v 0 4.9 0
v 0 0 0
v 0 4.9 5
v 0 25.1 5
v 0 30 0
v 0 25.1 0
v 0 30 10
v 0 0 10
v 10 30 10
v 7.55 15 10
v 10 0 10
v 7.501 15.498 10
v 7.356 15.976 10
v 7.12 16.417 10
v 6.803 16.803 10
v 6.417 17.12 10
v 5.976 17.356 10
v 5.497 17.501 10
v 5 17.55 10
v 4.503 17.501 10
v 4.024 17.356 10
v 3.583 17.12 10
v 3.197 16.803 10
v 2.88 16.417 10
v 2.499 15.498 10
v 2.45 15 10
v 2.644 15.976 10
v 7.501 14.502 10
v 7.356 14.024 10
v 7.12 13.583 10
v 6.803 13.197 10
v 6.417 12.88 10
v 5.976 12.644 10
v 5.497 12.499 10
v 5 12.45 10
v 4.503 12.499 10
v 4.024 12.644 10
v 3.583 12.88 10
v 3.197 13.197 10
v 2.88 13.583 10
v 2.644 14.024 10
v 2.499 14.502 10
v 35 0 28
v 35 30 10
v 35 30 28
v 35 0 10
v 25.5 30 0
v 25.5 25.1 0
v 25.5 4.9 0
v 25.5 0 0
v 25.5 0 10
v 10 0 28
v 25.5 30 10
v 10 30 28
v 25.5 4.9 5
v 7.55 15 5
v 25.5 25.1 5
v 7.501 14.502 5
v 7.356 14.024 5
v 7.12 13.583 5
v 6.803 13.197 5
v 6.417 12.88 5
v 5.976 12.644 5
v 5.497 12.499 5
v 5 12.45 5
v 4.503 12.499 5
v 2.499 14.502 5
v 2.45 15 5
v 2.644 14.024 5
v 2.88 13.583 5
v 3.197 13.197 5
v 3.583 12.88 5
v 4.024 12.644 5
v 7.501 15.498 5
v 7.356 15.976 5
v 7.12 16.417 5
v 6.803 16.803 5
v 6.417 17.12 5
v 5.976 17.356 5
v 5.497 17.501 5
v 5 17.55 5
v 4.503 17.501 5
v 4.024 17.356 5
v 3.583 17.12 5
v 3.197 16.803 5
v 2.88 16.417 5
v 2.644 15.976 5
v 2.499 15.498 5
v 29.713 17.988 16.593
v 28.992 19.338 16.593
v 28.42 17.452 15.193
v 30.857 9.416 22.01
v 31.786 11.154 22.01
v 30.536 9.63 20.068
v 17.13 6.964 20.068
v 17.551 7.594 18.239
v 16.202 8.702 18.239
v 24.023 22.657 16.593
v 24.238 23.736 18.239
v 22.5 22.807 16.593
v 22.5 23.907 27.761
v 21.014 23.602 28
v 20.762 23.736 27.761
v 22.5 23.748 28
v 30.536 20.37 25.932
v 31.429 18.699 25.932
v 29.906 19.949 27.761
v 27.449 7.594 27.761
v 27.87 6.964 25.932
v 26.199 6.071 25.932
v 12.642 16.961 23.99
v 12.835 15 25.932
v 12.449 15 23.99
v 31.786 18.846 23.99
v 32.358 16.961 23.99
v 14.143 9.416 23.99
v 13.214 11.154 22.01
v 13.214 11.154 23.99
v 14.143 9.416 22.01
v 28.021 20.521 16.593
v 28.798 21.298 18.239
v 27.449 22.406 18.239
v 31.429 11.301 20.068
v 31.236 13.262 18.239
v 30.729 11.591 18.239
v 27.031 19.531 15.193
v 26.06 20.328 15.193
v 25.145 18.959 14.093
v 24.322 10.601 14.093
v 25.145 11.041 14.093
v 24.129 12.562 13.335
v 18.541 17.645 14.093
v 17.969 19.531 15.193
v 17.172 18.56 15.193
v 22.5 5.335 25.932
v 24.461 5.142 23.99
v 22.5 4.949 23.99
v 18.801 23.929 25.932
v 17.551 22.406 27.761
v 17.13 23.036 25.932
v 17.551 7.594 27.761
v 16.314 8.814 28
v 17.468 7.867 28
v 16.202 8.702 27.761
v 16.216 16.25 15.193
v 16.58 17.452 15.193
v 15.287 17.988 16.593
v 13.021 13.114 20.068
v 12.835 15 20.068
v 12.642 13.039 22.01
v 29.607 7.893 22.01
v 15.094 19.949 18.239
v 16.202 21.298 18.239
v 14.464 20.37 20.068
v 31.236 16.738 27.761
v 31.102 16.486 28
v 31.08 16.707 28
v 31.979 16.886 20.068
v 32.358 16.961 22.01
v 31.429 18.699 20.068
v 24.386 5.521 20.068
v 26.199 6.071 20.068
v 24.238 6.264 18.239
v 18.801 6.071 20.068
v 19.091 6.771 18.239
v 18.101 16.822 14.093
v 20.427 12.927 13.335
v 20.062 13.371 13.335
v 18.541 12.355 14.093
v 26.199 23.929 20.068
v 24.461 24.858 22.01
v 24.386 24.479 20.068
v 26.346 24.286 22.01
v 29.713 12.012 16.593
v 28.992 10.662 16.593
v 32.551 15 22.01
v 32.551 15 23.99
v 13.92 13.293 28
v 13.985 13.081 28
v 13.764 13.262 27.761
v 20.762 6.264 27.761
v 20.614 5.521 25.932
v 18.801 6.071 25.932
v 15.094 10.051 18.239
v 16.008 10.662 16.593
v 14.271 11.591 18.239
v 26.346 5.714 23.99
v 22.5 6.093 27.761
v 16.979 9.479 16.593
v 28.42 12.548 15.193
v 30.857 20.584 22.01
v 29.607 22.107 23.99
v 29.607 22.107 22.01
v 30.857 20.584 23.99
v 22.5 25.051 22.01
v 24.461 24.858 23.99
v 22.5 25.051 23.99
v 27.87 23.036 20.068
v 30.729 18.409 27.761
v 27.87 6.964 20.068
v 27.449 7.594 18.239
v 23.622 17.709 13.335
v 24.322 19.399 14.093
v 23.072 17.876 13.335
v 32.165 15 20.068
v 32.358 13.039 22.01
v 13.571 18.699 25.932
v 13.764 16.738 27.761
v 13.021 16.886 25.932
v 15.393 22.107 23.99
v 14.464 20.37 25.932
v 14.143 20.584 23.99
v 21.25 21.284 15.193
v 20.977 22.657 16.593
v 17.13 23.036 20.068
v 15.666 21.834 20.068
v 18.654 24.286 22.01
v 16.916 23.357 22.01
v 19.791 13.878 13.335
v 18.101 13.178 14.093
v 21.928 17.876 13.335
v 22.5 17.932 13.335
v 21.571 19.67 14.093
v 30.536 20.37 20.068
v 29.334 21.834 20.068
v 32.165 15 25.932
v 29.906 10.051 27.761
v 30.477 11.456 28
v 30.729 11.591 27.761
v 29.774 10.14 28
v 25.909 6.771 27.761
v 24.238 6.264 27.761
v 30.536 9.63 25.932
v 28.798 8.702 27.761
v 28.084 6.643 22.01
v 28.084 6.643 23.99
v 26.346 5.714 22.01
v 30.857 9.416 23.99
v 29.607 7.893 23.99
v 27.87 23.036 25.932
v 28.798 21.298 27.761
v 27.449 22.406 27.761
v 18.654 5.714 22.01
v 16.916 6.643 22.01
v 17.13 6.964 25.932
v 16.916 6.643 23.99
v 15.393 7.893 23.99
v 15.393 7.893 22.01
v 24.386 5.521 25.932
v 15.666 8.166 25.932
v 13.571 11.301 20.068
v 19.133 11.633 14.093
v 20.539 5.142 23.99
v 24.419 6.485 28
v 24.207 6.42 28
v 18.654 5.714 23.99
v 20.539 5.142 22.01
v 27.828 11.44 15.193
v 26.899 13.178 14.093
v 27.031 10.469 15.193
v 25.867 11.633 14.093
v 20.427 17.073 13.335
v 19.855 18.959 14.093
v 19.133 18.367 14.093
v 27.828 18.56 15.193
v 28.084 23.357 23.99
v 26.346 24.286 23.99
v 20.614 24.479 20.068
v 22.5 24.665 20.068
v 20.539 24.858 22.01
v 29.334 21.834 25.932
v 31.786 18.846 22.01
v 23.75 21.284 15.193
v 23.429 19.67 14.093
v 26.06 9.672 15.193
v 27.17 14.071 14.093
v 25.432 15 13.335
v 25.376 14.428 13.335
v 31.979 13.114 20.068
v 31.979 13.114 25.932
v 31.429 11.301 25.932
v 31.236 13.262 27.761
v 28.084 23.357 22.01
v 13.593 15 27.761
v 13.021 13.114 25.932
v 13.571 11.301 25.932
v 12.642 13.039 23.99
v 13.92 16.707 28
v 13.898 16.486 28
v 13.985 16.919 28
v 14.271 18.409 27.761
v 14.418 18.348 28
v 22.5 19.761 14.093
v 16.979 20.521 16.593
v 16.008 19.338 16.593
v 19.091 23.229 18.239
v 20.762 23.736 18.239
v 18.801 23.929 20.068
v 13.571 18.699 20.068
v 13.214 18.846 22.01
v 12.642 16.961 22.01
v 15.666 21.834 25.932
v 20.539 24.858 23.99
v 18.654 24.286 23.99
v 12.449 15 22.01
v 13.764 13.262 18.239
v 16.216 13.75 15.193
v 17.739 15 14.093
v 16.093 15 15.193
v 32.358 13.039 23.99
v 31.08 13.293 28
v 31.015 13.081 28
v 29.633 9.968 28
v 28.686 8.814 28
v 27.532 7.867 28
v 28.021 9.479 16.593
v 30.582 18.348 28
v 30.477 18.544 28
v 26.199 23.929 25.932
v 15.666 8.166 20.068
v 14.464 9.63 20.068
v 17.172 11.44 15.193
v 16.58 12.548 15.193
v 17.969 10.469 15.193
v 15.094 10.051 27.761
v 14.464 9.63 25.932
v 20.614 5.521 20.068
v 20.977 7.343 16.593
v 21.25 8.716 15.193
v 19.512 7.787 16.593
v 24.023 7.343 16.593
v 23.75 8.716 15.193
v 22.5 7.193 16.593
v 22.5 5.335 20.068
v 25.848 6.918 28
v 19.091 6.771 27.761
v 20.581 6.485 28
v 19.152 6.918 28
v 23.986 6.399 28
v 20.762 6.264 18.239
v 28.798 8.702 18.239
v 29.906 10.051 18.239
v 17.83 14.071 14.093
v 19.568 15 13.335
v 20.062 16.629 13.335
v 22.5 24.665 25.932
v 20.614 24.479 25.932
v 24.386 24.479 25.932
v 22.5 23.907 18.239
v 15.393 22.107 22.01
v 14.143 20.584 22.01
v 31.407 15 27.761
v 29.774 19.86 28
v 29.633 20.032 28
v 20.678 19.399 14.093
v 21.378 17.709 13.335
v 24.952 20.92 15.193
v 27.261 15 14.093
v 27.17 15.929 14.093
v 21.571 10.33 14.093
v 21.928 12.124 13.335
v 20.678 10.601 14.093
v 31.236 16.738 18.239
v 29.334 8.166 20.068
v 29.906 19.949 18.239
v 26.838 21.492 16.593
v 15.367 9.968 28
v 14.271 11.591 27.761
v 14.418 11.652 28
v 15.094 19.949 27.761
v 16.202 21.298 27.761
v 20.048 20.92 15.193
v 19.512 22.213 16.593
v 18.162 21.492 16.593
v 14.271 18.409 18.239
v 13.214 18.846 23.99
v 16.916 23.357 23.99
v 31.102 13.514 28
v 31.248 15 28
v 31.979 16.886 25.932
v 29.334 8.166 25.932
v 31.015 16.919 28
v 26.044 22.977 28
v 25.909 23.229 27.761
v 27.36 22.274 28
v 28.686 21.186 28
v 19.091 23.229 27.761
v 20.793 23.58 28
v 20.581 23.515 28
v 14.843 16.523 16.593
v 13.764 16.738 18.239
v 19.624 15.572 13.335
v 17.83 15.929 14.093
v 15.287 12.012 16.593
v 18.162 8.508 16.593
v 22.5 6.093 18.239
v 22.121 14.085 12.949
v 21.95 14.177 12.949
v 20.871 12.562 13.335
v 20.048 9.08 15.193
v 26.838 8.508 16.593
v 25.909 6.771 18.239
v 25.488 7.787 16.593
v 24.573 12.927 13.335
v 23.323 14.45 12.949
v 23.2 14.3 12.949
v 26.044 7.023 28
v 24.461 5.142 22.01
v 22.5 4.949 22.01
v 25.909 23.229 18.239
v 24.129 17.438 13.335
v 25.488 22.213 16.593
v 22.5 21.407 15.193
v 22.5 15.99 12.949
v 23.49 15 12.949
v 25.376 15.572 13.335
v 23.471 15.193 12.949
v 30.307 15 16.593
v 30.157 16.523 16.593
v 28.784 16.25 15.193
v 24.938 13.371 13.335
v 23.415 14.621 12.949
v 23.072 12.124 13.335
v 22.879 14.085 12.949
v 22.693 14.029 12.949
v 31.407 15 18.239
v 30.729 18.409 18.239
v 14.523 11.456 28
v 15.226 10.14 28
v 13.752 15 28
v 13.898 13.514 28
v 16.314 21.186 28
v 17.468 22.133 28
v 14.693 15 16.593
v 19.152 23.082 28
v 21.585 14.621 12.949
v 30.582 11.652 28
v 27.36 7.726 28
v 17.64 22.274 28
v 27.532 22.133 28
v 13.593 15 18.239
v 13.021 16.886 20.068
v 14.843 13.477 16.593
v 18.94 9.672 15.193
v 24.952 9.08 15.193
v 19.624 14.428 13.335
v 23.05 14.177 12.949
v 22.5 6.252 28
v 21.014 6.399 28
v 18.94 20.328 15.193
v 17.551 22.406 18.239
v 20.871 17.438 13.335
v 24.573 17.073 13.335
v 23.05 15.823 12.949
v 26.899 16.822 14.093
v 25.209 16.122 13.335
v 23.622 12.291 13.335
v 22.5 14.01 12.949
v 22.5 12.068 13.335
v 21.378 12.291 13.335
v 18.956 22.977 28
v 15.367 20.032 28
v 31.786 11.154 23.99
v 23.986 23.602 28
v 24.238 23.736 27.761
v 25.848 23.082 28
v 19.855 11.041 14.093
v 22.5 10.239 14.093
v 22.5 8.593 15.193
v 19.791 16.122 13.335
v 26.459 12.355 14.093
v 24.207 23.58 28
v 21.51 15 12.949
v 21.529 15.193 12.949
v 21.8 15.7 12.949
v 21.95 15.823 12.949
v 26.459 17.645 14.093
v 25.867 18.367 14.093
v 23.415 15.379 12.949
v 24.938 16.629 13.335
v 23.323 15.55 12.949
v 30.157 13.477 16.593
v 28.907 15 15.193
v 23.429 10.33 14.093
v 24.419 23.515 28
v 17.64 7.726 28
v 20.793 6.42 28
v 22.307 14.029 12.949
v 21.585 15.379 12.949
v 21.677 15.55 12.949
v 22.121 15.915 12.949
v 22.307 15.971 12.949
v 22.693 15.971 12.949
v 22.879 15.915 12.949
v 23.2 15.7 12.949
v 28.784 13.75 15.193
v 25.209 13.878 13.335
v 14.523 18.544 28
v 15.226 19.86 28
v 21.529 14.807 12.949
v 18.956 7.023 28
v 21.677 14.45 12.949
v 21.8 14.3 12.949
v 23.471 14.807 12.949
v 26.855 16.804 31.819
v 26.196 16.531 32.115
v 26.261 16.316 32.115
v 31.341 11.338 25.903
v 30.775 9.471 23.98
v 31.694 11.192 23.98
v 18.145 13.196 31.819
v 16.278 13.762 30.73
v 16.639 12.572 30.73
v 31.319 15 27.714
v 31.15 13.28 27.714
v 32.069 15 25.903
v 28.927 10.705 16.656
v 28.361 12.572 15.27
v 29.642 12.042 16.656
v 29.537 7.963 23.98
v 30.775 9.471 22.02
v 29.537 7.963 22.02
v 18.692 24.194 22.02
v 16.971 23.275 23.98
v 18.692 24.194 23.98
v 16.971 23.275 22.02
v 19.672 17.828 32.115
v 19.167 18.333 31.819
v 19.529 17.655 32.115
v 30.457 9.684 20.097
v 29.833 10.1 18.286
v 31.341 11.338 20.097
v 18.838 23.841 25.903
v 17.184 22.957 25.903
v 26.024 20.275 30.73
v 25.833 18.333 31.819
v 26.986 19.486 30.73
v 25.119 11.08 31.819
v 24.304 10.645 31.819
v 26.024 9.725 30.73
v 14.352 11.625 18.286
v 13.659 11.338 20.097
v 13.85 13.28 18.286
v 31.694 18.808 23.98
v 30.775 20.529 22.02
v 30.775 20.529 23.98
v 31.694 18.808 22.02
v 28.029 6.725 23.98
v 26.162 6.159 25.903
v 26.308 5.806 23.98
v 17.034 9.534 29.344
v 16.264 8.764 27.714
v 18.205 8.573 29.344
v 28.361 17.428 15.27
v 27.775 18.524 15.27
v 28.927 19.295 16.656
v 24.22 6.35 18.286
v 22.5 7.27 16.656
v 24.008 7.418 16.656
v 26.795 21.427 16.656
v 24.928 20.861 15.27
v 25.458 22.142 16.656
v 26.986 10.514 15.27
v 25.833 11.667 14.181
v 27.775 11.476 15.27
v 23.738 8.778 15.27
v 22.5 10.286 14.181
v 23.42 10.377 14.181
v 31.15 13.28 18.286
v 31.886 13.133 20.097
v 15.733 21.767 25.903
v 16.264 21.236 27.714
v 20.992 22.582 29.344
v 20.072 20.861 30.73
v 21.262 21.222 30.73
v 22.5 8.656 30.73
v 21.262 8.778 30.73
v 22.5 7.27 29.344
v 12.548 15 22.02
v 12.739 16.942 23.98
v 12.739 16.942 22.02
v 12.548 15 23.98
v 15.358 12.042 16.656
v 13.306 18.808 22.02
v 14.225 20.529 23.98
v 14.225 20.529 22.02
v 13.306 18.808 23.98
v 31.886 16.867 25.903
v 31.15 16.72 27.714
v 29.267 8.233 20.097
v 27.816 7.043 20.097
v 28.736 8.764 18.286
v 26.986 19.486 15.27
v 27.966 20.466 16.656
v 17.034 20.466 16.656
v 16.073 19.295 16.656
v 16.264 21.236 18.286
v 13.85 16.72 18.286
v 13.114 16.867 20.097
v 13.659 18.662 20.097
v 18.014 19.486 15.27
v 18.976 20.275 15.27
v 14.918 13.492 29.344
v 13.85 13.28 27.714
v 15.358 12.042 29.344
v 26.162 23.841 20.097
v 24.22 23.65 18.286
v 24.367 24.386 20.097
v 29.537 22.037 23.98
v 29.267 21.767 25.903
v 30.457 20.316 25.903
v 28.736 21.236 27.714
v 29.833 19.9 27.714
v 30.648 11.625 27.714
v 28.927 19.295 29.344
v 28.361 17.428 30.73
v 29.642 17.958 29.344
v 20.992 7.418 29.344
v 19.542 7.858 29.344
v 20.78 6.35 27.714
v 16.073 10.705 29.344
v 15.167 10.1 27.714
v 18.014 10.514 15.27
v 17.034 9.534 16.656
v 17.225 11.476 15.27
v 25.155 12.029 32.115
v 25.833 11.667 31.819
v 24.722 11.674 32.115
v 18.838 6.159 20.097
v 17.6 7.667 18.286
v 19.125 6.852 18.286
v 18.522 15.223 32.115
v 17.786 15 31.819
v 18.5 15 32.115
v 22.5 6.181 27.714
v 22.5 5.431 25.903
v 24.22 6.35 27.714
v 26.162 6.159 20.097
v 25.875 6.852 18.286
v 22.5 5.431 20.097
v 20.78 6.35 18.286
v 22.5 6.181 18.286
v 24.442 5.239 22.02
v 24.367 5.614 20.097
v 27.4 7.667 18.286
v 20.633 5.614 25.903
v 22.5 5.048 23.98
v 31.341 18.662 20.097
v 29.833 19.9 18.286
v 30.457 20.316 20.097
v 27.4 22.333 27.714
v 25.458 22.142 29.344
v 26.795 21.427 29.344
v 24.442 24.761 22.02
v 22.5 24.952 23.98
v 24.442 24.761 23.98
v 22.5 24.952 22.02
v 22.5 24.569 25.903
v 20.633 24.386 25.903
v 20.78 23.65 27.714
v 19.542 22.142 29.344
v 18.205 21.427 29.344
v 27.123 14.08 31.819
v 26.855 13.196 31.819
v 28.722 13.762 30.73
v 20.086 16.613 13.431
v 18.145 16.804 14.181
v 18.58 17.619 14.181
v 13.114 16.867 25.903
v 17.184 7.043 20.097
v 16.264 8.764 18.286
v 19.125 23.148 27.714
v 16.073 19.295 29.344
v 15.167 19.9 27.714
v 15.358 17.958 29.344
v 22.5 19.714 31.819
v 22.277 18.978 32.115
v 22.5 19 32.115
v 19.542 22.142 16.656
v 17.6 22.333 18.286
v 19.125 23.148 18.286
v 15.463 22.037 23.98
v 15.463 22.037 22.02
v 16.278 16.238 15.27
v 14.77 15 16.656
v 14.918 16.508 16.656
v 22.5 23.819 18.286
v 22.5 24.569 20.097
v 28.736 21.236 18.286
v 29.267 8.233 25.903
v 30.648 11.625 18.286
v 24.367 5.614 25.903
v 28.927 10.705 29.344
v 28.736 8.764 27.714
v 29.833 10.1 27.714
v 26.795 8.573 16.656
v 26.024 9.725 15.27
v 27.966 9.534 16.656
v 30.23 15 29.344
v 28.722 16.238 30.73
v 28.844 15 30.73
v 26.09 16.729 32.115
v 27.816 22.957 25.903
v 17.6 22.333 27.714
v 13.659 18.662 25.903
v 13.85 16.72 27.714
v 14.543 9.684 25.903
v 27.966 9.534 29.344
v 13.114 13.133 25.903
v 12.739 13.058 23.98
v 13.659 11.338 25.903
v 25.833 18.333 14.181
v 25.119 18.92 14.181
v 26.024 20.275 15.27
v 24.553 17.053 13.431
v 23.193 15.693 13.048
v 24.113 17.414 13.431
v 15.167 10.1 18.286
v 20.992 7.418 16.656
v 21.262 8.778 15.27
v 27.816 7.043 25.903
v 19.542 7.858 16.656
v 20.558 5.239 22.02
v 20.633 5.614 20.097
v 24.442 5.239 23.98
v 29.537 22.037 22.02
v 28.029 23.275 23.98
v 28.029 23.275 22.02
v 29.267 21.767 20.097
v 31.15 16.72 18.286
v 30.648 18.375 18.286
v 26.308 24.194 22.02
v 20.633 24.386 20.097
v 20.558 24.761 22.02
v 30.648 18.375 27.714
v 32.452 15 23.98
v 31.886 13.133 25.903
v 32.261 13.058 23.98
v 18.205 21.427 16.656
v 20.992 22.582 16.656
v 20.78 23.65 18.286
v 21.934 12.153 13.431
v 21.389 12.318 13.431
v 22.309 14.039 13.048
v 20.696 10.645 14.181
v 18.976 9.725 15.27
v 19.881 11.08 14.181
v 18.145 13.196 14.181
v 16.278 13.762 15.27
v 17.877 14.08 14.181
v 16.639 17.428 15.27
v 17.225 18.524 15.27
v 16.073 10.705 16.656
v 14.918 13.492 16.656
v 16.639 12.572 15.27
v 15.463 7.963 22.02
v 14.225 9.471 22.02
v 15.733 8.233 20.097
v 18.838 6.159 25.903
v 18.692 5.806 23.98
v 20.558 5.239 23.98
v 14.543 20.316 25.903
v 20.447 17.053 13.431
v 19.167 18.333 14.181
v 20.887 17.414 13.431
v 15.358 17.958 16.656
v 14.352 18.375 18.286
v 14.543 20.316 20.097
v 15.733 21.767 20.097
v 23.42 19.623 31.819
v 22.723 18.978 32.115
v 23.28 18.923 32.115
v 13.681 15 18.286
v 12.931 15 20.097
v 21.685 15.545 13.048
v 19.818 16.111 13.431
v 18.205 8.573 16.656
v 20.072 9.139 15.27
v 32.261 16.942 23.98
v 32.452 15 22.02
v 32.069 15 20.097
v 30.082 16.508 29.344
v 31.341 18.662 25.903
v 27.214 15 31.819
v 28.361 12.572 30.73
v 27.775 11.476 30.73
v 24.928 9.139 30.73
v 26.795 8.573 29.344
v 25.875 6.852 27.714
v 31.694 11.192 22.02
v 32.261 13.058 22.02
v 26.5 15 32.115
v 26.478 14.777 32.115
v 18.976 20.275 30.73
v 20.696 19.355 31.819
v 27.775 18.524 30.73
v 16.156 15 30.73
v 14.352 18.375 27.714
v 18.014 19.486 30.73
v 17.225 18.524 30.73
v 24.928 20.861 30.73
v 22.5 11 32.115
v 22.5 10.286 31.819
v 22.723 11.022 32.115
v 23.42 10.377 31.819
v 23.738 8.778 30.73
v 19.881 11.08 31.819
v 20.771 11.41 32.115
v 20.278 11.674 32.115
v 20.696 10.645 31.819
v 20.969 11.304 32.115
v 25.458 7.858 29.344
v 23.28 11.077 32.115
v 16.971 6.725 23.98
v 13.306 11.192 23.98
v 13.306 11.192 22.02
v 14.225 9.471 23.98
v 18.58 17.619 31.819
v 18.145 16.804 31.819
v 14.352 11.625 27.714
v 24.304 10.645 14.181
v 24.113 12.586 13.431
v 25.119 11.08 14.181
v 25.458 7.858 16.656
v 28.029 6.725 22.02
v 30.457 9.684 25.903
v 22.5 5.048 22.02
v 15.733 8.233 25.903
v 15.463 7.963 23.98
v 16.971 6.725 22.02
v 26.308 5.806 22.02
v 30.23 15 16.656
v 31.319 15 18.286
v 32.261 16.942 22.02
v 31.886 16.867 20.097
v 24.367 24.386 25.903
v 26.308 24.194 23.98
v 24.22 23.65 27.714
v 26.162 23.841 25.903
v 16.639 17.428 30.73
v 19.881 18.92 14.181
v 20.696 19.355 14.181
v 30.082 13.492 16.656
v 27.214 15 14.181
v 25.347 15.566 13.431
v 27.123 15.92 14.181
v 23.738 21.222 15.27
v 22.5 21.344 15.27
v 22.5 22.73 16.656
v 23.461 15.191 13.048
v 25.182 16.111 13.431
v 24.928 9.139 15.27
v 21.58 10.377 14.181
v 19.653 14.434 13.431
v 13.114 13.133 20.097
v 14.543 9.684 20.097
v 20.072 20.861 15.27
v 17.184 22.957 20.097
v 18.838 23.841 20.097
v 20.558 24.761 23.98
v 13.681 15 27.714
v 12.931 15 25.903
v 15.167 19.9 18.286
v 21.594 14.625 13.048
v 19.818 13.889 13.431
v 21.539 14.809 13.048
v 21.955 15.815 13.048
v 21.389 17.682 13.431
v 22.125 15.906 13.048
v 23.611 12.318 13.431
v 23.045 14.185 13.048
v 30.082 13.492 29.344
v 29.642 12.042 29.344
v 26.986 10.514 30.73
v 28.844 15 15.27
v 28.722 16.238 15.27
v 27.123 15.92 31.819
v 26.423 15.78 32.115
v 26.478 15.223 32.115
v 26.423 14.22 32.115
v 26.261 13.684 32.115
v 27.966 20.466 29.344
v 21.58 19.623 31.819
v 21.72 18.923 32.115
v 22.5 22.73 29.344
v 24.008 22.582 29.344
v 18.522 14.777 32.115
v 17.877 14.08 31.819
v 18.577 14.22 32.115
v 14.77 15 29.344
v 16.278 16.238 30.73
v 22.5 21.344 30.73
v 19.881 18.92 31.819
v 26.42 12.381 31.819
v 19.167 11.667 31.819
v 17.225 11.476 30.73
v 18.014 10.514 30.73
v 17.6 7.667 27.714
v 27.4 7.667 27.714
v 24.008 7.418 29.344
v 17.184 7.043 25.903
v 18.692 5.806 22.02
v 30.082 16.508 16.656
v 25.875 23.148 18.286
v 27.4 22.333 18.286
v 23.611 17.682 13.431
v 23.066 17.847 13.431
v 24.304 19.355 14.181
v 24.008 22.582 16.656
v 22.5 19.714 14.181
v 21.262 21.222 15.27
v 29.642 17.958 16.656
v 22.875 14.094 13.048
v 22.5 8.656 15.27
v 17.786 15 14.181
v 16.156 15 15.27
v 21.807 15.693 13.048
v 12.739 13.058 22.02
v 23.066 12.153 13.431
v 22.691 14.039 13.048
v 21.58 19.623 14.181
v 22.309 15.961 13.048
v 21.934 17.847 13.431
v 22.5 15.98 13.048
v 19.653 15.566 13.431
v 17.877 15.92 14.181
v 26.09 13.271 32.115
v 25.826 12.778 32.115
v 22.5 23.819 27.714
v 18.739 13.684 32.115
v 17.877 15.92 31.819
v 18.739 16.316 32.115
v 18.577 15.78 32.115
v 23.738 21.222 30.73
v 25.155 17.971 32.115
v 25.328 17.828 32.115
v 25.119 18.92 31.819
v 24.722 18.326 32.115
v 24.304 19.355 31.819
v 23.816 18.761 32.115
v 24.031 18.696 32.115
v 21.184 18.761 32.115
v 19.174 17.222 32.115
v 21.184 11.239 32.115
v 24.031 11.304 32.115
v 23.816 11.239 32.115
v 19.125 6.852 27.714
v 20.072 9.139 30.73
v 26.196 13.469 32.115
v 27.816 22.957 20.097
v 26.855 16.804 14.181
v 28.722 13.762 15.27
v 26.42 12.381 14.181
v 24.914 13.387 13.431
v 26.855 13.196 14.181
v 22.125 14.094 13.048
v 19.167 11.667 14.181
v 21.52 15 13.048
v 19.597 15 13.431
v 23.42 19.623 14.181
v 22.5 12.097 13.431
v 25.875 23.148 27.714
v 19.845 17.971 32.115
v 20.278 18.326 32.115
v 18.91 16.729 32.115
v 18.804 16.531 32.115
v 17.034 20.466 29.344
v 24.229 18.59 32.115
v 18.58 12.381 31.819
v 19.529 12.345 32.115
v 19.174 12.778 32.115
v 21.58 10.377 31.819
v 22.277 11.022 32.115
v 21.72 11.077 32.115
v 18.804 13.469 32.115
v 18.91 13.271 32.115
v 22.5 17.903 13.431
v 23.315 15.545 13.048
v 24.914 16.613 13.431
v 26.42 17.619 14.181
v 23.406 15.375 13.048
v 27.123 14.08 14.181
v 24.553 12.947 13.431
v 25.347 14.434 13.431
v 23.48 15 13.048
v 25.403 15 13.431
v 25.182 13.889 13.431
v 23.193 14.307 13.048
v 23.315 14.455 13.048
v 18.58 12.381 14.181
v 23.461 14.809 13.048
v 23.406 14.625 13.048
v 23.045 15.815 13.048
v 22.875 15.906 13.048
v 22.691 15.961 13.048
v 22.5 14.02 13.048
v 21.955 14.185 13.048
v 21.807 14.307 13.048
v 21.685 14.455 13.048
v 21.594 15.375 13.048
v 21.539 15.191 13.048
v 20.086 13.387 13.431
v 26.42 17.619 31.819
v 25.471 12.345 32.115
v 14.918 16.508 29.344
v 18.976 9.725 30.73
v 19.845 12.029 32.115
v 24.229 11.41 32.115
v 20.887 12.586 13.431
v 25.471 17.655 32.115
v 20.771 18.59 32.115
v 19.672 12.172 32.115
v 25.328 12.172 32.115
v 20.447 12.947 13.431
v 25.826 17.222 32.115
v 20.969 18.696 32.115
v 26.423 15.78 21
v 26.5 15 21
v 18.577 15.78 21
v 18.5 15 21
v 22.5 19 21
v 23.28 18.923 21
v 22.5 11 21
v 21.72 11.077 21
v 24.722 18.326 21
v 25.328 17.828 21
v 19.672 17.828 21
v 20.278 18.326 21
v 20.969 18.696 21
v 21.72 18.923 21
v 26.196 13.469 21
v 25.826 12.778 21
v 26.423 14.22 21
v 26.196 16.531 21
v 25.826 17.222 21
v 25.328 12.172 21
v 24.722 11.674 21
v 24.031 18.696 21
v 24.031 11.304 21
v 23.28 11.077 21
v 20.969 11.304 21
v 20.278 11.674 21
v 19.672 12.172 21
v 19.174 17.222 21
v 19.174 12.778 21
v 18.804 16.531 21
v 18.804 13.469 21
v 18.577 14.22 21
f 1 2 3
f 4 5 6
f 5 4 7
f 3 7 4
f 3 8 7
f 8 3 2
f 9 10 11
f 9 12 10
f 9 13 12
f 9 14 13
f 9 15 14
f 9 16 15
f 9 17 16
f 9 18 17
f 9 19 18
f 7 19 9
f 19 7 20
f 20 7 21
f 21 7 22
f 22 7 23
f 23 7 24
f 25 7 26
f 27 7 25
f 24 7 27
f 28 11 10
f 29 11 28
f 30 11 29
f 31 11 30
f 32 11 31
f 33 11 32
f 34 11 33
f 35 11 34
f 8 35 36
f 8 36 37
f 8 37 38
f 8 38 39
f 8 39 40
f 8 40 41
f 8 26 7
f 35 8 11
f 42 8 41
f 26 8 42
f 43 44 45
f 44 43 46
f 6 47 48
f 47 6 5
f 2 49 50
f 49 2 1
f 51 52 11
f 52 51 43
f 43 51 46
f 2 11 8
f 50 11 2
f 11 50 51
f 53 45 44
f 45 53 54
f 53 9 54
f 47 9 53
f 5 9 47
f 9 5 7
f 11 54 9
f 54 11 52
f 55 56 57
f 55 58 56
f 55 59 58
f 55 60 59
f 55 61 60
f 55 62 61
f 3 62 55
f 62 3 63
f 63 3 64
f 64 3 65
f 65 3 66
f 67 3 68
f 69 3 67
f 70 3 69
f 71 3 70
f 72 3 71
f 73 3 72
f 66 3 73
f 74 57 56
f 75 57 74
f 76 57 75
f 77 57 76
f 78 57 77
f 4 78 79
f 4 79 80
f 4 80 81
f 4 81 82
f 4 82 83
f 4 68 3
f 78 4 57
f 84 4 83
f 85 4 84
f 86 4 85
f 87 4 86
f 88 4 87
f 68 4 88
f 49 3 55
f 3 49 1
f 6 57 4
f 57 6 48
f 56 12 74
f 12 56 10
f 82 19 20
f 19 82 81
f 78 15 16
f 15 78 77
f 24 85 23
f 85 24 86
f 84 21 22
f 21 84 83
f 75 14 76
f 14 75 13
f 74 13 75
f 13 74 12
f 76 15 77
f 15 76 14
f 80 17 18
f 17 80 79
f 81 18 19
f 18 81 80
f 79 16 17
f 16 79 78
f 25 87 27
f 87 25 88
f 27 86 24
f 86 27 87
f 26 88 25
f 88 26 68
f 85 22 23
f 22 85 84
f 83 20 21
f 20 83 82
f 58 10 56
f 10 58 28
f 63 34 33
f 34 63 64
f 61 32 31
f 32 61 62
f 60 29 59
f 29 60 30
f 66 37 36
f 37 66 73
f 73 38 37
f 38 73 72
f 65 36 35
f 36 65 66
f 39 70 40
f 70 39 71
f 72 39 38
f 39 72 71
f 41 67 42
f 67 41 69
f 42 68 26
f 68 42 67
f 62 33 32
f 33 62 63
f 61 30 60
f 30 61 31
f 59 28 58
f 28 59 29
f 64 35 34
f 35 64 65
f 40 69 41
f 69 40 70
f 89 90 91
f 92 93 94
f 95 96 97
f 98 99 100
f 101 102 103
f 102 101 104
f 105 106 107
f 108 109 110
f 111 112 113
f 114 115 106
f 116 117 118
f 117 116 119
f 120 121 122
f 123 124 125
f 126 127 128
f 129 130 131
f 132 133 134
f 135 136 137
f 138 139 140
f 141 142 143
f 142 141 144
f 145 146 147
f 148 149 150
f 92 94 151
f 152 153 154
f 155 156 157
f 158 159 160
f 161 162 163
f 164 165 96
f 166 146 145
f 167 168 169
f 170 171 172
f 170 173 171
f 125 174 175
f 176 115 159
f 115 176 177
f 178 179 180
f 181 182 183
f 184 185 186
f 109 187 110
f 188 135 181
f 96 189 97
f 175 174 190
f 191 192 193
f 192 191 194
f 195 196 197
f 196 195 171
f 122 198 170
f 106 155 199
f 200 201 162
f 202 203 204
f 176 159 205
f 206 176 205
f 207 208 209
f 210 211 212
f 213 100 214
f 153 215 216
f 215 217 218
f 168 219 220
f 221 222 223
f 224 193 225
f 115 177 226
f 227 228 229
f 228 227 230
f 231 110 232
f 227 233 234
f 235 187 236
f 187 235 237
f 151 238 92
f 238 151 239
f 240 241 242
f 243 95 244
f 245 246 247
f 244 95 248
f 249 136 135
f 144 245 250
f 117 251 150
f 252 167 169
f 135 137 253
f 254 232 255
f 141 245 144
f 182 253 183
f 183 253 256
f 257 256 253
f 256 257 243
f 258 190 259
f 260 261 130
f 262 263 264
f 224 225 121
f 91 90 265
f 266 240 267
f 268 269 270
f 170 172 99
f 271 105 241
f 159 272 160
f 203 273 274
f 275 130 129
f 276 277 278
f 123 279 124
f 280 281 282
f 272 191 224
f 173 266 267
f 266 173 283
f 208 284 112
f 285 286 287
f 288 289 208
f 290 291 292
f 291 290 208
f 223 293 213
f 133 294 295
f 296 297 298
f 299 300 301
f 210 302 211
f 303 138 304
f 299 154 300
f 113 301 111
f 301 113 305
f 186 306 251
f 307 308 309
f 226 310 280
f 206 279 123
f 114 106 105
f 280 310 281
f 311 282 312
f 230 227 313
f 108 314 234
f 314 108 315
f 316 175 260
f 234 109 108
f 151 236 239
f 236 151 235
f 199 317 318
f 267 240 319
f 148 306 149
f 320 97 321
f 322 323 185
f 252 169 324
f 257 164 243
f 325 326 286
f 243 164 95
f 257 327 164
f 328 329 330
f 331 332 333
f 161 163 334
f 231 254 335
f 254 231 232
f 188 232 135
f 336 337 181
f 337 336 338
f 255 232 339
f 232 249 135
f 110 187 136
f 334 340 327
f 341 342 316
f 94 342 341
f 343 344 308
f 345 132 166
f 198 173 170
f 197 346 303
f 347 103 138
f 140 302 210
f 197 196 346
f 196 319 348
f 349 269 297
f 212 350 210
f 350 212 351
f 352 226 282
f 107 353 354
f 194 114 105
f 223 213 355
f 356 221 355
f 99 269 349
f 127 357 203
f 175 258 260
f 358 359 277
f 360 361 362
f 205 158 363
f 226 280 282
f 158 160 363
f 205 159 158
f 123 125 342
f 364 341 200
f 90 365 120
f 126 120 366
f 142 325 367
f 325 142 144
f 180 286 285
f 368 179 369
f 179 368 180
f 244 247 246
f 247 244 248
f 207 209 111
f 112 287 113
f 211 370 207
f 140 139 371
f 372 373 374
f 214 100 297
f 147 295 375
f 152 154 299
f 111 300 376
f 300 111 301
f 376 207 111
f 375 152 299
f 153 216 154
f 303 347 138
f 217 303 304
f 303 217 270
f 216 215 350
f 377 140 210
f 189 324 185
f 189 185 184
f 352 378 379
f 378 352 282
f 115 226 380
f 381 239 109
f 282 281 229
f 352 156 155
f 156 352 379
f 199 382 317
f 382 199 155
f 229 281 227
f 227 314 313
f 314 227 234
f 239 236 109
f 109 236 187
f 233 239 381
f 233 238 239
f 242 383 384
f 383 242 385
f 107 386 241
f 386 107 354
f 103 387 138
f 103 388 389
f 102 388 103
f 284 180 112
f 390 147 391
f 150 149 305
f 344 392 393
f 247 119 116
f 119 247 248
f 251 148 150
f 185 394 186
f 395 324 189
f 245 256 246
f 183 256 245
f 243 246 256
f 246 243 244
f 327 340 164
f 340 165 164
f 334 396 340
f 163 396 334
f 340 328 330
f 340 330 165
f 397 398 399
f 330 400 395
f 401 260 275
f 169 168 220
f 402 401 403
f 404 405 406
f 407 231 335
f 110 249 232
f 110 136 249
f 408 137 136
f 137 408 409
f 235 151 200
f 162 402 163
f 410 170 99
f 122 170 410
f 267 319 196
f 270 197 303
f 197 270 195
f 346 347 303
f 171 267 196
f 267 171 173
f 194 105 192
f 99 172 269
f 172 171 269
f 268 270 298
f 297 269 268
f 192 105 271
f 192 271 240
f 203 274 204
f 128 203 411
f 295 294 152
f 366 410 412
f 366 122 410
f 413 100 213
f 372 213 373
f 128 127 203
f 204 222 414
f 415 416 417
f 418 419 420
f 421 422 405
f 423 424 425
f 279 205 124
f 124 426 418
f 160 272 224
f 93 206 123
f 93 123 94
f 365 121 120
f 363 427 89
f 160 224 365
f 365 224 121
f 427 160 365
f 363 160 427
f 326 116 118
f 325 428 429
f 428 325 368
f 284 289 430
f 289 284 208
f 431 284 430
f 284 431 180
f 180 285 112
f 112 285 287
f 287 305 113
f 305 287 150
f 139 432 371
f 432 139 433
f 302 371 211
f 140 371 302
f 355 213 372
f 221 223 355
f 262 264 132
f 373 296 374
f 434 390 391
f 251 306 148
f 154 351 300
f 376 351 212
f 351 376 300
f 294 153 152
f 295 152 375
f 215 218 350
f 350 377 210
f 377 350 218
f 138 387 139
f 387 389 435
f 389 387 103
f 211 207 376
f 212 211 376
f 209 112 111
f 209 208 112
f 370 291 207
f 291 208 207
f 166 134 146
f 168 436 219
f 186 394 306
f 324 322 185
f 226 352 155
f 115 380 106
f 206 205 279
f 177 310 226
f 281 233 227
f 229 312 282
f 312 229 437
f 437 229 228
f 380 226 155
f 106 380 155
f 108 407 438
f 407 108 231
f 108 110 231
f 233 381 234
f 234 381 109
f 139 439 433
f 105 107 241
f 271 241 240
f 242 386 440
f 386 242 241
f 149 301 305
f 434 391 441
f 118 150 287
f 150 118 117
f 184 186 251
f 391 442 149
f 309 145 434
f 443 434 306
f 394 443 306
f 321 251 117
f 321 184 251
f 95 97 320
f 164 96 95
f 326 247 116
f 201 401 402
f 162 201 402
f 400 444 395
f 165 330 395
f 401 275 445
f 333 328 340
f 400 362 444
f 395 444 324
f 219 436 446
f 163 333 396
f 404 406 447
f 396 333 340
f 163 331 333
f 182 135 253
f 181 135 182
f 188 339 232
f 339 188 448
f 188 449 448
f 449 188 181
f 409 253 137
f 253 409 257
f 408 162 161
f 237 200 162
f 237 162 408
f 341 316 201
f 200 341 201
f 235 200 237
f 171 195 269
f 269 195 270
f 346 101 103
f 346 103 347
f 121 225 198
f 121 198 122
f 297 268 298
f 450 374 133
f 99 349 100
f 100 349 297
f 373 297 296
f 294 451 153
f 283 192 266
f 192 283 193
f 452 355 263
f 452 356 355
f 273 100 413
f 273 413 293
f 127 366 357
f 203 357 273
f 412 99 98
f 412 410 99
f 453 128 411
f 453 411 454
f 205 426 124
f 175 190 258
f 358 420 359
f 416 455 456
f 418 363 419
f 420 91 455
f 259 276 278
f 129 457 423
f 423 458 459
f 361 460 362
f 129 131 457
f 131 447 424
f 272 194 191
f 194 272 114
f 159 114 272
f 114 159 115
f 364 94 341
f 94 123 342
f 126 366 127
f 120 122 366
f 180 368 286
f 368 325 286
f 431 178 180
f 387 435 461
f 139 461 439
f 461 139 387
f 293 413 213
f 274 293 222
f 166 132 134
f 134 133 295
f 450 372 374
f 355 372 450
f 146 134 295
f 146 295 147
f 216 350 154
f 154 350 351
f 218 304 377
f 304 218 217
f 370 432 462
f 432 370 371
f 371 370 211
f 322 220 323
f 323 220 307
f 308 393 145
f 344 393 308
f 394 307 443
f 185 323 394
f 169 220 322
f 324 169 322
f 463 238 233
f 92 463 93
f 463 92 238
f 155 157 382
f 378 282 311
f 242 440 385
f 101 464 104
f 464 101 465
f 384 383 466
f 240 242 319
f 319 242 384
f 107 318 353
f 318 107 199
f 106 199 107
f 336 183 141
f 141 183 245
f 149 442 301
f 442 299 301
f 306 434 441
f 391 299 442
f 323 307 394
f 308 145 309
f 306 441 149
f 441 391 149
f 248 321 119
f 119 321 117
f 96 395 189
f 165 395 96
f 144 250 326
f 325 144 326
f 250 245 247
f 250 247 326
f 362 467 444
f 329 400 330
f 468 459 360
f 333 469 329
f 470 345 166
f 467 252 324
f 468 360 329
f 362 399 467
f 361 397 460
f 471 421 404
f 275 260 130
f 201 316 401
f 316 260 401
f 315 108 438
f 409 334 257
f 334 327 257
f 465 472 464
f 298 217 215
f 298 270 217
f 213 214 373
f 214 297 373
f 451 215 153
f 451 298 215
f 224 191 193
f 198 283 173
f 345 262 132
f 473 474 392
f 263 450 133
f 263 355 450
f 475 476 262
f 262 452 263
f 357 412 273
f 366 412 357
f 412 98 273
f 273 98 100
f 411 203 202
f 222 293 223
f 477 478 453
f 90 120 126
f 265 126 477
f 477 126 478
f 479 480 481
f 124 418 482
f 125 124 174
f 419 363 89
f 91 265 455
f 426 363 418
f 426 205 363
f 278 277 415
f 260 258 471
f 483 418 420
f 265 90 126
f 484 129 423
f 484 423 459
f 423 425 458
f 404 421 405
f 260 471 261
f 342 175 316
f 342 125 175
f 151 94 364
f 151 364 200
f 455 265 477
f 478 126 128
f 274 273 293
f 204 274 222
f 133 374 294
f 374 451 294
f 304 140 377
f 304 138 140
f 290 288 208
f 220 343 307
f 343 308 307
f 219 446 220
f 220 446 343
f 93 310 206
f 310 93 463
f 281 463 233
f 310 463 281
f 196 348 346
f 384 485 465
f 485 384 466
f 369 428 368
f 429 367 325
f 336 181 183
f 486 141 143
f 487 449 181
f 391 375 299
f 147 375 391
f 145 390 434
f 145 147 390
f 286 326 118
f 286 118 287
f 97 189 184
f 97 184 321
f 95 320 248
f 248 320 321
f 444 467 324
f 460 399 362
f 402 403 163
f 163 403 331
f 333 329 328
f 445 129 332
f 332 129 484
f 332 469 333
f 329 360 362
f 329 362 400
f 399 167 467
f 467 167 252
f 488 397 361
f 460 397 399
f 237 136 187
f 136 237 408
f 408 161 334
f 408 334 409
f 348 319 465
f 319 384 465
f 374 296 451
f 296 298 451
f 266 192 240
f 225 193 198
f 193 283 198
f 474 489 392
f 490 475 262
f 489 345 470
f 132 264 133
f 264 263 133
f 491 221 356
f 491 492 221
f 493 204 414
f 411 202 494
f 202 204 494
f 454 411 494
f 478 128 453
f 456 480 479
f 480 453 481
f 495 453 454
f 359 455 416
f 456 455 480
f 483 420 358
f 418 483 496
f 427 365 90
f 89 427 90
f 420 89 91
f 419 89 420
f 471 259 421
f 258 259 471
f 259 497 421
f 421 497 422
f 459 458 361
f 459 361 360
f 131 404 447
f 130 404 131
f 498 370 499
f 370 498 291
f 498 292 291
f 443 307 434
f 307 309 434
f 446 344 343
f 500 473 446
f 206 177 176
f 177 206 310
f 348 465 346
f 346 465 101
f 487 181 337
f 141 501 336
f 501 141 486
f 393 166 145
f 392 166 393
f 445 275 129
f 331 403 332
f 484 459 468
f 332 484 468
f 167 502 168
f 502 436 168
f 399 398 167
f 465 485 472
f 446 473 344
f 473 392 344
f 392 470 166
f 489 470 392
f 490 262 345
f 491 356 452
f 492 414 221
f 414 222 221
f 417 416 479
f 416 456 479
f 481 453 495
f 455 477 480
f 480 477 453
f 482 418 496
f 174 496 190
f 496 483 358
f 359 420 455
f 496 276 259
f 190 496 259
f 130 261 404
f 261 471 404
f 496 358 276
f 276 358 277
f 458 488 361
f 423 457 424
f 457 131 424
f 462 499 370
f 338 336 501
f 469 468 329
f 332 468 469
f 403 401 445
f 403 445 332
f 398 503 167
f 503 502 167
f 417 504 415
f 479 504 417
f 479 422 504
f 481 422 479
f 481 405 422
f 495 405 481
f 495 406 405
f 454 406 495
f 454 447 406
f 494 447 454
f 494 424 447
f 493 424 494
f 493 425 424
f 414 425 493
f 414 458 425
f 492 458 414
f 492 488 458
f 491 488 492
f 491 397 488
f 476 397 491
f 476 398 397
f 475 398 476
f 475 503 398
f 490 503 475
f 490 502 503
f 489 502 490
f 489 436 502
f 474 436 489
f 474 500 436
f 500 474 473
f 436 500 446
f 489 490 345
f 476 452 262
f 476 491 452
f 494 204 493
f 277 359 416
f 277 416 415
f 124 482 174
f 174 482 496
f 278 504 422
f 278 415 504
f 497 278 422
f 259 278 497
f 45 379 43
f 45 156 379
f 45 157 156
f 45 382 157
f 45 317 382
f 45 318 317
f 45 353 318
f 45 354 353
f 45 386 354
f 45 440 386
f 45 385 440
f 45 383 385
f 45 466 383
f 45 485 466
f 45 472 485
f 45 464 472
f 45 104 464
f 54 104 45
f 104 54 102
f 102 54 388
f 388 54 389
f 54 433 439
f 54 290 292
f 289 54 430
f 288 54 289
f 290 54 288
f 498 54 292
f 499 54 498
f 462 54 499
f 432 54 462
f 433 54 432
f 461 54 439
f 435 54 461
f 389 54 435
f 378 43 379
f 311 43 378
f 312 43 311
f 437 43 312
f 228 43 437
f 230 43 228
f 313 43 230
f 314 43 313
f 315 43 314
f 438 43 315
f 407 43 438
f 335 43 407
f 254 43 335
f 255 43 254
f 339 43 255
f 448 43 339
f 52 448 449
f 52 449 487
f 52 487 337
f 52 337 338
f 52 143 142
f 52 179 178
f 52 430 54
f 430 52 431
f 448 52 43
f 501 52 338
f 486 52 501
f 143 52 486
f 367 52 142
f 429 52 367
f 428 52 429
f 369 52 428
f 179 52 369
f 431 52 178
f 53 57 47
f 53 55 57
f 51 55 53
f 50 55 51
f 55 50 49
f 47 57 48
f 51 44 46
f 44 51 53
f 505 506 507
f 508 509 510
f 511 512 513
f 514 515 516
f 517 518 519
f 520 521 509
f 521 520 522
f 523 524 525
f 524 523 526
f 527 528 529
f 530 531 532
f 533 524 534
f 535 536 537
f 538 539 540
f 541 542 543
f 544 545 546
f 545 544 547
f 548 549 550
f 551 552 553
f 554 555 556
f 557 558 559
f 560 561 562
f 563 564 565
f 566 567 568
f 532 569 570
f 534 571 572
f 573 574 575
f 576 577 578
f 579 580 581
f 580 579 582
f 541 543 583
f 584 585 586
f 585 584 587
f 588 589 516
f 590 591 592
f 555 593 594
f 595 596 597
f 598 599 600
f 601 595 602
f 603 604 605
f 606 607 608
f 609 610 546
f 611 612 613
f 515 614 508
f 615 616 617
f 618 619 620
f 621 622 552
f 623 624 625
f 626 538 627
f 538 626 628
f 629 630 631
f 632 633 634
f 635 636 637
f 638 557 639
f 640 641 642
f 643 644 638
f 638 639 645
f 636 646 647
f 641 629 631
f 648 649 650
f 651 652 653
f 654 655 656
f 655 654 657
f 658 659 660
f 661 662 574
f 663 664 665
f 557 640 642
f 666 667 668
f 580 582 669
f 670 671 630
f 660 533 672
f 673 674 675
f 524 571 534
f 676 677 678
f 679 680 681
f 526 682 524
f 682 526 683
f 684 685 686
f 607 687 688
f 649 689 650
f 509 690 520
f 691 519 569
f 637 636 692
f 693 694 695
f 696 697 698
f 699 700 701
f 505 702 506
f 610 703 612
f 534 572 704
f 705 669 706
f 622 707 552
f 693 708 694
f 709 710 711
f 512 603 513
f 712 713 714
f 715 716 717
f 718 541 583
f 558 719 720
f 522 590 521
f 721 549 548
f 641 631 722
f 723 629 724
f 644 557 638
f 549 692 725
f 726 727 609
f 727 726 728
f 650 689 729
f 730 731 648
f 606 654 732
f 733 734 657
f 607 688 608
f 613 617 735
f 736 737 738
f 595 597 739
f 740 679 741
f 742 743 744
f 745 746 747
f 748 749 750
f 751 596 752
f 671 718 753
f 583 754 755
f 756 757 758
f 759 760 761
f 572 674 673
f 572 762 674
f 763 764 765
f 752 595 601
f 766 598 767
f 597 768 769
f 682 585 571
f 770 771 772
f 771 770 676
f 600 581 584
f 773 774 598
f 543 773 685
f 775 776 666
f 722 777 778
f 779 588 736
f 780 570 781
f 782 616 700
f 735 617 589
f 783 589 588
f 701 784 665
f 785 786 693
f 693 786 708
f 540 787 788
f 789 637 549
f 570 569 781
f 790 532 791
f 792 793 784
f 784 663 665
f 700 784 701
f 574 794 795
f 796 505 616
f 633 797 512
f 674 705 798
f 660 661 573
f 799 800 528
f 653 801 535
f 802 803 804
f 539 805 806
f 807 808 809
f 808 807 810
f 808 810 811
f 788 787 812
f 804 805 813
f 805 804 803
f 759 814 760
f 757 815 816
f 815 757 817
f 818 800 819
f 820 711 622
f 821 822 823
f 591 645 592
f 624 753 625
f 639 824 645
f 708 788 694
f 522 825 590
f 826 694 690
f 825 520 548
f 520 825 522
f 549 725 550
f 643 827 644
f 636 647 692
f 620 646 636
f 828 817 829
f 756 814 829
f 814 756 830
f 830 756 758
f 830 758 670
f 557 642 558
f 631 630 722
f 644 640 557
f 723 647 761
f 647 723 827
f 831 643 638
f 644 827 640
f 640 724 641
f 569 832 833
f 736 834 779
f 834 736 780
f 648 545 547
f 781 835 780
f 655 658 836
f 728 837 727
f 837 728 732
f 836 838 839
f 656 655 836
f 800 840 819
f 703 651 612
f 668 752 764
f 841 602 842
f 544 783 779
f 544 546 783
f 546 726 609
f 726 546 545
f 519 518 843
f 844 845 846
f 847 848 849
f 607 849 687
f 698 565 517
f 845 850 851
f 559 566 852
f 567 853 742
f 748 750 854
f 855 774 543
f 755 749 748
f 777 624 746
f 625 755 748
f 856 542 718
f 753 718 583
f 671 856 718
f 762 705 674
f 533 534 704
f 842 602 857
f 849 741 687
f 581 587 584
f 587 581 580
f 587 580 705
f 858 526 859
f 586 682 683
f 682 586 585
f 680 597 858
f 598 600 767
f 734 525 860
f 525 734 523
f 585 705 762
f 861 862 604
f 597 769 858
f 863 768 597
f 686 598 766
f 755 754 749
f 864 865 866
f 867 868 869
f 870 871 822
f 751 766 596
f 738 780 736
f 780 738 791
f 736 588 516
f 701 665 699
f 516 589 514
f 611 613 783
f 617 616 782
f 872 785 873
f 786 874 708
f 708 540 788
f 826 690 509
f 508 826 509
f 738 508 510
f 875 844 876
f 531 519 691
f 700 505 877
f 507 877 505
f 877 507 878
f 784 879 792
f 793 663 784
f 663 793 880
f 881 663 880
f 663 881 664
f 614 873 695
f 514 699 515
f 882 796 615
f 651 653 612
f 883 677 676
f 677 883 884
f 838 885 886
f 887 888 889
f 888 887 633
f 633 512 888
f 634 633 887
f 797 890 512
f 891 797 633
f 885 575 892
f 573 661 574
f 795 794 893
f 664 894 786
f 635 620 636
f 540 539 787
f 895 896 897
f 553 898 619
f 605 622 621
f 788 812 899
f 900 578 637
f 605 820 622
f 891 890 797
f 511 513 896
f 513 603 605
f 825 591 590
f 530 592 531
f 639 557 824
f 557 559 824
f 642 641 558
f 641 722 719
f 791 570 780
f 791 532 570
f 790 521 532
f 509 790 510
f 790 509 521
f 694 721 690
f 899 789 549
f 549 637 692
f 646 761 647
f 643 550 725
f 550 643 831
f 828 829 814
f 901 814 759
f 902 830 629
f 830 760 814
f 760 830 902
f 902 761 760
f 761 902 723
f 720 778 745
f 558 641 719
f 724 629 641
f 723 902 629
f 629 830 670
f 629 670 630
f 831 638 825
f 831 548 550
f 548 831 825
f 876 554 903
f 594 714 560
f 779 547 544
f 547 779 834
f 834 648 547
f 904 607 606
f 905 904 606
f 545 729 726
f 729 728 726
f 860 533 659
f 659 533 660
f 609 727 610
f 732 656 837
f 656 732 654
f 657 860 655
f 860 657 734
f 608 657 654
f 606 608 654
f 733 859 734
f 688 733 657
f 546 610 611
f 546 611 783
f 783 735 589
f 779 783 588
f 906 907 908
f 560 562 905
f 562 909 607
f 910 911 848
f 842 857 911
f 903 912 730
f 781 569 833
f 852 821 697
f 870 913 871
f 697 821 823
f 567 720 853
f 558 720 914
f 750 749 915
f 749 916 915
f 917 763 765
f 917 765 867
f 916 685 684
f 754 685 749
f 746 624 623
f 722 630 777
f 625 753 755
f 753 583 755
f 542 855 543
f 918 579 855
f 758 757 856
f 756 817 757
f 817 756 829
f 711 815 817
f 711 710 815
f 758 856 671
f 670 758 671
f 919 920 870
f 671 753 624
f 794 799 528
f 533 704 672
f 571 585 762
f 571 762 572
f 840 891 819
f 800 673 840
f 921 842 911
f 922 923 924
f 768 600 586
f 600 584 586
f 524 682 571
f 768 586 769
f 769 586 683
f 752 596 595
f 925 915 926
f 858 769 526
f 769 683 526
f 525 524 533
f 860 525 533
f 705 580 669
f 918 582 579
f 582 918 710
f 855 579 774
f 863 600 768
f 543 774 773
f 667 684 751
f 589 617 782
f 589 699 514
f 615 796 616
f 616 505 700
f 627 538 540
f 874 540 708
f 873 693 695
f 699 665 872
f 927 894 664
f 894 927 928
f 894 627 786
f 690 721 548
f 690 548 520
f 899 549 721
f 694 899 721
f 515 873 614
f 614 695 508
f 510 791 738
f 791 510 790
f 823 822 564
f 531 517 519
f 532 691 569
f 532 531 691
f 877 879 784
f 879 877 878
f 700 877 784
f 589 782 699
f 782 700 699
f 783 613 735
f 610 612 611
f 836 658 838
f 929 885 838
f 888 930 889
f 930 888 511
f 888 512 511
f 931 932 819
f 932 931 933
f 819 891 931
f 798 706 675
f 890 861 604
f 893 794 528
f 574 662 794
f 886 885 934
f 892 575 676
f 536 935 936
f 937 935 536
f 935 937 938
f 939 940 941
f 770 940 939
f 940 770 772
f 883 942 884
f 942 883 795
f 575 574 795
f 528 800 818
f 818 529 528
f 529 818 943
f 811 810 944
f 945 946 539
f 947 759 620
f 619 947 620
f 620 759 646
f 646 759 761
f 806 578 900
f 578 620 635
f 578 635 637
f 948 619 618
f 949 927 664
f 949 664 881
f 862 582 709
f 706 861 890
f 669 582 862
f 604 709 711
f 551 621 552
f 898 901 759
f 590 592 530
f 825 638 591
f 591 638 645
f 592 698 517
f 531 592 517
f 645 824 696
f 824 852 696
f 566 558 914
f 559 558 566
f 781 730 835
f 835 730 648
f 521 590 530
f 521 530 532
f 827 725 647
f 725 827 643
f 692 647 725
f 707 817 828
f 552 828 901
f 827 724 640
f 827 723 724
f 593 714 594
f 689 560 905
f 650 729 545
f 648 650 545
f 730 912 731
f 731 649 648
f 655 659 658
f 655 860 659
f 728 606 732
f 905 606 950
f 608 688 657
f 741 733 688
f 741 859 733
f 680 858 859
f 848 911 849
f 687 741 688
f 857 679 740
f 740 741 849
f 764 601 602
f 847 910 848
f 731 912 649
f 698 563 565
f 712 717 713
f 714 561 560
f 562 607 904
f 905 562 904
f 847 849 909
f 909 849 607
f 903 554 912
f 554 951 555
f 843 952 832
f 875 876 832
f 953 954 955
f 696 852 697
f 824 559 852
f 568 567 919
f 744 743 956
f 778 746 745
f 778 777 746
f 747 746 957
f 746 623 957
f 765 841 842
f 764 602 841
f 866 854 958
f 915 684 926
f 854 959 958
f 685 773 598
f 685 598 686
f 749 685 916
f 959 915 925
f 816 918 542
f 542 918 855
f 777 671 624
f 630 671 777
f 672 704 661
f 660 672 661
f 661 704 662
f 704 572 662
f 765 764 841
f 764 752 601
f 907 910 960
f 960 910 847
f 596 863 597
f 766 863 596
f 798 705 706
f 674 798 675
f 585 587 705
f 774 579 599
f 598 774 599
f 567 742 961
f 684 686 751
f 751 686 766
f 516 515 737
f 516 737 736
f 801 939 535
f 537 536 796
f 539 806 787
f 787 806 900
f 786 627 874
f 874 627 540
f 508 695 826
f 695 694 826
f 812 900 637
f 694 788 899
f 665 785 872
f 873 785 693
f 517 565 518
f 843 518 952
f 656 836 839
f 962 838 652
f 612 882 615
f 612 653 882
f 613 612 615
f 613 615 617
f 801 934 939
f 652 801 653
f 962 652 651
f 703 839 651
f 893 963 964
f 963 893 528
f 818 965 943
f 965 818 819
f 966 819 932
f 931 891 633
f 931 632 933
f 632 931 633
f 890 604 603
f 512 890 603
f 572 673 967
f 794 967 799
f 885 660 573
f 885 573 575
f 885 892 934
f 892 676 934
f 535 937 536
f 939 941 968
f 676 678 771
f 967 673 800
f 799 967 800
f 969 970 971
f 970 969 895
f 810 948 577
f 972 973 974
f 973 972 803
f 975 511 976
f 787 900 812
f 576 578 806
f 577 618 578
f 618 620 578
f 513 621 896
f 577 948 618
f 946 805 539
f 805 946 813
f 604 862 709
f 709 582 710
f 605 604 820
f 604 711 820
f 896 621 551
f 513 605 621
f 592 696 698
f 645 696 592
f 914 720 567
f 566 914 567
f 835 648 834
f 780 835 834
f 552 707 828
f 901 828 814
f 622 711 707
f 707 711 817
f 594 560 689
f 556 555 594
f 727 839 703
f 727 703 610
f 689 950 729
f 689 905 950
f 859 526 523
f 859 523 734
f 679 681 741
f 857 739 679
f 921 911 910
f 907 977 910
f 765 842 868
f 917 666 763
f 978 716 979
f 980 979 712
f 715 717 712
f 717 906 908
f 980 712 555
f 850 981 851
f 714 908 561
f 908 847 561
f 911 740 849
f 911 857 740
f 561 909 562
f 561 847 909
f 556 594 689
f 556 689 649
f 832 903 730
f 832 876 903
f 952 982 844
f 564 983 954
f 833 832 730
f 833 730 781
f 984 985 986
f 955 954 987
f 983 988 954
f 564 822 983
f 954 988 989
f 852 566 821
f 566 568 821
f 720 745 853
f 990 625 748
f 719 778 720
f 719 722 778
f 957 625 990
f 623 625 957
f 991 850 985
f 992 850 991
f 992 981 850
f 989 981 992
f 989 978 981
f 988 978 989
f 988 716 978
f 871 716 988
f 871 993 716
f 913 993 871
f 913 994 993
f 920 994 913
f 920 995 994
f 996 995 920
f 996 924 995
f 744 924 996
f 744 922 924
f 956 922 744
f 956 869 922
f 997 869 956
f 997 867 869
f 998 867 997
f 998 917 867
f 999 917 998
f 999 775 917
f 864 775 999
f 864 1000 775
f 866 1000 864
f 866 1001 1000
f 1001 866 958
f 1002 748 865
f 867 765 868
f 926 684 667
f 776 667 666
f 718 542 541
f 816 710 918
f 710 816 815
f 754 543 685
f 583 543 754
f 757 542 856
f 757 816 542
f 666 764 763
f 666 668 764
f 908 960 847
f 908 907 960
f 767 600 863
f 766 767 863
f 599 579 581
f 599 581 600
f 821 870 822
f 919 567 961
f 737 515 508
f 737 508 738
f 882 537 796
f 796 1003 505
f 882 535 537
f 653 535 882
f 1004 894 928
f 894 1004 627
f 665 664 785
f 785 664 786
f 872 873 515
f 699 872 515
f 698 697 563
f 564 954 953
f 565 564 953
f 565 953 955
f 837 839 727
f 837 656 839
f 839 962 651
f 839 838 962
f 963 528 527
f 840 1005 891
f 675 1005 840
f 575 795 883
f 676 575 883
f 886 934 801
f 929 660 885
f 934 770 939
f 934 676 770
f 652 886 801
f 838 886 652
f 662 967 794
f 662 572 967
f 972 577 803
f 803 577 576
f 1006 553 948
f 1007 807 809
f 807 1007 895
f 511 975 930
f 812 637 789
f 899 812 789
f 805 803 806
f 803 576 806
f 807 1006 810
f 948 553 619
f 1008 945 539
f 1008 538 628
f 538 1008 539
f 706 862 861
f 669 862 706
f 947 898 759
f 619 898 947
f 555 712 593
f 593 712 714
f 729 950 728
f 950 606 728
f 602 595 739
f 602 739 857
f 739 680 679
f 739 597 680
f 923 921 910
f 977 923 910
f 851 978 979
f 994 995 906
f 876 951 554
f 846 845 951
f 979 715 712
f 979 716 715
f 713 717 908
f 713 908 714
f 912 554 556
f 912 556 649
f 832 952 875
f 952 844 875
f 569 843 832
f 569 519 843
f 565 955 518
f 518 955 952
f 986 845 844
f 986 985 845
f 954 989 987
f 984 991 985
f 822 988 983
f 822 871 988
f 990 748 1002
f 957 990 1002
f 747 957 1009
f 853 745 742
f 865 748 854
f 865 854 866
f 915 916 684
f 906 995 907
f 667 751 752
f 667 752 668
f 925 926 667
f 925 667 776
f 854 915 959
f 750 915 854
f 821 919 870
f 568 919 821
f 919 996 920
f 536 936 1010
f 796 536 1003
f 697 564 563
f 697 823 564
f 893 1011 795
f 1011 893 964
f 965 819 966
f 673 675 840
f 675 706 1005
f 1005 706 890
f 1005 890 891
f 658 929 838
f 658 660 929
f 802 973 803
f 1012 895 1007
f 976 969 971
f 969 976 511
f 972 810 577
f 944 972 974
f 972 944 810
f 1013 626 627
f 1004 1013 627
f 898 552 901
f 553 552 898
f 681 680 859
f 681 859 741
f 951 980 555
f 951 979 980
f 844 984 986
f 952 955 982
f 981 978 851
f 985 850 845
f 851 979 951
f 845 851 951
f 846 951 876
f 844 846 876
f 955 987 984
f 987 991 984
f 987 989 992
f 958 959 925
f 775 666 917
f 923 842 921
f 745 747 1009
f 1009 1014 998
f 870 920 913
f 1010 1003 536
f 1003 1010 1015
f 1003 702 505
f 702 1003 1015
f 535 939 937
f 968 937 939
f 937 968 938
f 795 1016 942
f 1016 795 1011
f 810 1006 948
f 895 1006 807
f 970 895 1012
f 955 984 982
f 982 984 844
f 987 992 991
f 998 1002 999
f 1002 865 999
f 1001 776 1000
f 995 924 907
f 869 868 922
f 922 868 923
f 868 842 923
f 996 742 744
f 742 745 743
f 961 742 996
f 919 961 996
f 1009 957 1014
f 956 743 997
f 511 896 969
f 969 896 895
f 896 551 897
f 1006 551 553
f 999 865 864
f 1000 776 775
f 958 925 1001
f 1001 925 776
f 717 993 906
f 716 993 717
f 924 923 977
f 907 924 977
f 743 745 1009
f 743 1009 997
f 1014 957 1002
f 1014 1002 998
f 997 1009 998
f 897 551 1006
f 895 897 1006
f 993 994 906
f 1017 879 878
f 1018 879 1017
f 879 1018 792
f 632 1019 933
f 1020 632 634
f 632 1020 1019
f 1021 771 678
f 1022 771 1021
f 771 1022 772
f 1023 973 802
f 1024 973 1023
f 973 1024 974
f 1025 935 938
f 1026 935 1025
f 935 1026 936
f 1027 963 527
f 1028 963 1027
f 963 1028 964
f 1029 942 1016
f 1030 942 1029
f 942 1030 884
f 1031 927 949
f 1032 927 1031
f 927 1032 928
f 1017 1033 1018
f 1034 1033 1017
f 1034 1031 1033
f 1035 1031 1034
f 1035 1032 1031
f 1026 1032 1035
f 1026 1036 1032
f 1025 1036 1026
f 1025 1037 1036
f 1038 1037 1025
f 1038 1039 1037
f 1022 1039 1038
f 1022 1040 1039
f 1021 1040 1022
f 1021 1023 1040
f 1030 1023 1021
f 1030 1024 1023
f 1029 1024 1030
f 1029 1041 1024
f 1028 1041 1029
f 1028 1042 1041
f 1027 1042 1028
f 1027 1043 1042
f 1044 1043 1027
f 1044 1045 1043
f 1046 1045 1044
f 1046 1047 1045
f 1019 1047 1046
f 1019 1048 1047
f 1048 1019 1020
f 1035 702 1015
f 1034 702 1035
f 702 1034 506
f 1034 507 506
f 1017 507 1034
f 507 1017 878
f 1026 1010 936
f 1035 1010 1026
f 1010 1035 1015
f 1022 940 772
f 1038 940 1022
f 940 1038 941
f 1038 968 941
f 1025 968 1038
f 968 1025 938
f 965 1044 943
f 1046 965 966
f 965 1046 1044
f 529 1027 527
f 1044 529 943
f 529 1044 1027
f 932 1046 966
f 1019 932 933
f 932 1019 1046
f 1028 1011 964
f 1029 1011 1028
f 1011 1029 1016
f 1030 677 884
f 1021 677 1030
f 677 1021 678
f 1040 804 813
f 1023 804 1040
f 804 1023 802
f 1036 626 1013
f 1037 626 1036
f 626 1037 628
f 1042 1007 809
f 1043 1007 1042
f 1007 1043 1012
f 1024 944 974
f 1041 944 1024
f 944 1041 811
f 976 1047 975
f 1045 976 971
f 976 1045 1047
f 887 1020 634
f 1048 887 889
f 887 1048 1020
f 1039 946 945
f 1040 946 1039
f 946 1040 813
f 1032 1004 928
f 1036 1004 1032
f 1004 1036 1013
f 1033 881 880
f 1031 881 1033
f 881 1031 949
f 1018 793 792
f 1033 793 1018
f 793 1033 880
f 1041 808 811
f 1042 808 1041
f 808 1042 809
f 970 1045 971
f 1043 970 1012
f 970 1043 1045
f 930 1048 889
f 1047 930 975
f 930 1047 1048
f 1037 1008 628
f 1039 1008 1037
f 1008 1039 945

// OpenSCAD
$fn=32;

difference(){
    union(){
        cube([35,30,10]);
        translate([10,0,10])cube([25,30,28]);
    };
    translate([-1,4.9,-15])cube([50,20.2,20]);
    translate([5,15,4])cylinder(d=5.1,h=10);
    translate([22.5,15,23])sphere(d=20.2);
    translate([5,-1,28])cube([40,40,30]);
    translate([25.5,-1,-1])cube([10,32,11]);
};
translate([22.5,15,23]) difference(){
    sphere(d=20);
    translate([0,0,-2])cylinder(d=8,h=20);
};
